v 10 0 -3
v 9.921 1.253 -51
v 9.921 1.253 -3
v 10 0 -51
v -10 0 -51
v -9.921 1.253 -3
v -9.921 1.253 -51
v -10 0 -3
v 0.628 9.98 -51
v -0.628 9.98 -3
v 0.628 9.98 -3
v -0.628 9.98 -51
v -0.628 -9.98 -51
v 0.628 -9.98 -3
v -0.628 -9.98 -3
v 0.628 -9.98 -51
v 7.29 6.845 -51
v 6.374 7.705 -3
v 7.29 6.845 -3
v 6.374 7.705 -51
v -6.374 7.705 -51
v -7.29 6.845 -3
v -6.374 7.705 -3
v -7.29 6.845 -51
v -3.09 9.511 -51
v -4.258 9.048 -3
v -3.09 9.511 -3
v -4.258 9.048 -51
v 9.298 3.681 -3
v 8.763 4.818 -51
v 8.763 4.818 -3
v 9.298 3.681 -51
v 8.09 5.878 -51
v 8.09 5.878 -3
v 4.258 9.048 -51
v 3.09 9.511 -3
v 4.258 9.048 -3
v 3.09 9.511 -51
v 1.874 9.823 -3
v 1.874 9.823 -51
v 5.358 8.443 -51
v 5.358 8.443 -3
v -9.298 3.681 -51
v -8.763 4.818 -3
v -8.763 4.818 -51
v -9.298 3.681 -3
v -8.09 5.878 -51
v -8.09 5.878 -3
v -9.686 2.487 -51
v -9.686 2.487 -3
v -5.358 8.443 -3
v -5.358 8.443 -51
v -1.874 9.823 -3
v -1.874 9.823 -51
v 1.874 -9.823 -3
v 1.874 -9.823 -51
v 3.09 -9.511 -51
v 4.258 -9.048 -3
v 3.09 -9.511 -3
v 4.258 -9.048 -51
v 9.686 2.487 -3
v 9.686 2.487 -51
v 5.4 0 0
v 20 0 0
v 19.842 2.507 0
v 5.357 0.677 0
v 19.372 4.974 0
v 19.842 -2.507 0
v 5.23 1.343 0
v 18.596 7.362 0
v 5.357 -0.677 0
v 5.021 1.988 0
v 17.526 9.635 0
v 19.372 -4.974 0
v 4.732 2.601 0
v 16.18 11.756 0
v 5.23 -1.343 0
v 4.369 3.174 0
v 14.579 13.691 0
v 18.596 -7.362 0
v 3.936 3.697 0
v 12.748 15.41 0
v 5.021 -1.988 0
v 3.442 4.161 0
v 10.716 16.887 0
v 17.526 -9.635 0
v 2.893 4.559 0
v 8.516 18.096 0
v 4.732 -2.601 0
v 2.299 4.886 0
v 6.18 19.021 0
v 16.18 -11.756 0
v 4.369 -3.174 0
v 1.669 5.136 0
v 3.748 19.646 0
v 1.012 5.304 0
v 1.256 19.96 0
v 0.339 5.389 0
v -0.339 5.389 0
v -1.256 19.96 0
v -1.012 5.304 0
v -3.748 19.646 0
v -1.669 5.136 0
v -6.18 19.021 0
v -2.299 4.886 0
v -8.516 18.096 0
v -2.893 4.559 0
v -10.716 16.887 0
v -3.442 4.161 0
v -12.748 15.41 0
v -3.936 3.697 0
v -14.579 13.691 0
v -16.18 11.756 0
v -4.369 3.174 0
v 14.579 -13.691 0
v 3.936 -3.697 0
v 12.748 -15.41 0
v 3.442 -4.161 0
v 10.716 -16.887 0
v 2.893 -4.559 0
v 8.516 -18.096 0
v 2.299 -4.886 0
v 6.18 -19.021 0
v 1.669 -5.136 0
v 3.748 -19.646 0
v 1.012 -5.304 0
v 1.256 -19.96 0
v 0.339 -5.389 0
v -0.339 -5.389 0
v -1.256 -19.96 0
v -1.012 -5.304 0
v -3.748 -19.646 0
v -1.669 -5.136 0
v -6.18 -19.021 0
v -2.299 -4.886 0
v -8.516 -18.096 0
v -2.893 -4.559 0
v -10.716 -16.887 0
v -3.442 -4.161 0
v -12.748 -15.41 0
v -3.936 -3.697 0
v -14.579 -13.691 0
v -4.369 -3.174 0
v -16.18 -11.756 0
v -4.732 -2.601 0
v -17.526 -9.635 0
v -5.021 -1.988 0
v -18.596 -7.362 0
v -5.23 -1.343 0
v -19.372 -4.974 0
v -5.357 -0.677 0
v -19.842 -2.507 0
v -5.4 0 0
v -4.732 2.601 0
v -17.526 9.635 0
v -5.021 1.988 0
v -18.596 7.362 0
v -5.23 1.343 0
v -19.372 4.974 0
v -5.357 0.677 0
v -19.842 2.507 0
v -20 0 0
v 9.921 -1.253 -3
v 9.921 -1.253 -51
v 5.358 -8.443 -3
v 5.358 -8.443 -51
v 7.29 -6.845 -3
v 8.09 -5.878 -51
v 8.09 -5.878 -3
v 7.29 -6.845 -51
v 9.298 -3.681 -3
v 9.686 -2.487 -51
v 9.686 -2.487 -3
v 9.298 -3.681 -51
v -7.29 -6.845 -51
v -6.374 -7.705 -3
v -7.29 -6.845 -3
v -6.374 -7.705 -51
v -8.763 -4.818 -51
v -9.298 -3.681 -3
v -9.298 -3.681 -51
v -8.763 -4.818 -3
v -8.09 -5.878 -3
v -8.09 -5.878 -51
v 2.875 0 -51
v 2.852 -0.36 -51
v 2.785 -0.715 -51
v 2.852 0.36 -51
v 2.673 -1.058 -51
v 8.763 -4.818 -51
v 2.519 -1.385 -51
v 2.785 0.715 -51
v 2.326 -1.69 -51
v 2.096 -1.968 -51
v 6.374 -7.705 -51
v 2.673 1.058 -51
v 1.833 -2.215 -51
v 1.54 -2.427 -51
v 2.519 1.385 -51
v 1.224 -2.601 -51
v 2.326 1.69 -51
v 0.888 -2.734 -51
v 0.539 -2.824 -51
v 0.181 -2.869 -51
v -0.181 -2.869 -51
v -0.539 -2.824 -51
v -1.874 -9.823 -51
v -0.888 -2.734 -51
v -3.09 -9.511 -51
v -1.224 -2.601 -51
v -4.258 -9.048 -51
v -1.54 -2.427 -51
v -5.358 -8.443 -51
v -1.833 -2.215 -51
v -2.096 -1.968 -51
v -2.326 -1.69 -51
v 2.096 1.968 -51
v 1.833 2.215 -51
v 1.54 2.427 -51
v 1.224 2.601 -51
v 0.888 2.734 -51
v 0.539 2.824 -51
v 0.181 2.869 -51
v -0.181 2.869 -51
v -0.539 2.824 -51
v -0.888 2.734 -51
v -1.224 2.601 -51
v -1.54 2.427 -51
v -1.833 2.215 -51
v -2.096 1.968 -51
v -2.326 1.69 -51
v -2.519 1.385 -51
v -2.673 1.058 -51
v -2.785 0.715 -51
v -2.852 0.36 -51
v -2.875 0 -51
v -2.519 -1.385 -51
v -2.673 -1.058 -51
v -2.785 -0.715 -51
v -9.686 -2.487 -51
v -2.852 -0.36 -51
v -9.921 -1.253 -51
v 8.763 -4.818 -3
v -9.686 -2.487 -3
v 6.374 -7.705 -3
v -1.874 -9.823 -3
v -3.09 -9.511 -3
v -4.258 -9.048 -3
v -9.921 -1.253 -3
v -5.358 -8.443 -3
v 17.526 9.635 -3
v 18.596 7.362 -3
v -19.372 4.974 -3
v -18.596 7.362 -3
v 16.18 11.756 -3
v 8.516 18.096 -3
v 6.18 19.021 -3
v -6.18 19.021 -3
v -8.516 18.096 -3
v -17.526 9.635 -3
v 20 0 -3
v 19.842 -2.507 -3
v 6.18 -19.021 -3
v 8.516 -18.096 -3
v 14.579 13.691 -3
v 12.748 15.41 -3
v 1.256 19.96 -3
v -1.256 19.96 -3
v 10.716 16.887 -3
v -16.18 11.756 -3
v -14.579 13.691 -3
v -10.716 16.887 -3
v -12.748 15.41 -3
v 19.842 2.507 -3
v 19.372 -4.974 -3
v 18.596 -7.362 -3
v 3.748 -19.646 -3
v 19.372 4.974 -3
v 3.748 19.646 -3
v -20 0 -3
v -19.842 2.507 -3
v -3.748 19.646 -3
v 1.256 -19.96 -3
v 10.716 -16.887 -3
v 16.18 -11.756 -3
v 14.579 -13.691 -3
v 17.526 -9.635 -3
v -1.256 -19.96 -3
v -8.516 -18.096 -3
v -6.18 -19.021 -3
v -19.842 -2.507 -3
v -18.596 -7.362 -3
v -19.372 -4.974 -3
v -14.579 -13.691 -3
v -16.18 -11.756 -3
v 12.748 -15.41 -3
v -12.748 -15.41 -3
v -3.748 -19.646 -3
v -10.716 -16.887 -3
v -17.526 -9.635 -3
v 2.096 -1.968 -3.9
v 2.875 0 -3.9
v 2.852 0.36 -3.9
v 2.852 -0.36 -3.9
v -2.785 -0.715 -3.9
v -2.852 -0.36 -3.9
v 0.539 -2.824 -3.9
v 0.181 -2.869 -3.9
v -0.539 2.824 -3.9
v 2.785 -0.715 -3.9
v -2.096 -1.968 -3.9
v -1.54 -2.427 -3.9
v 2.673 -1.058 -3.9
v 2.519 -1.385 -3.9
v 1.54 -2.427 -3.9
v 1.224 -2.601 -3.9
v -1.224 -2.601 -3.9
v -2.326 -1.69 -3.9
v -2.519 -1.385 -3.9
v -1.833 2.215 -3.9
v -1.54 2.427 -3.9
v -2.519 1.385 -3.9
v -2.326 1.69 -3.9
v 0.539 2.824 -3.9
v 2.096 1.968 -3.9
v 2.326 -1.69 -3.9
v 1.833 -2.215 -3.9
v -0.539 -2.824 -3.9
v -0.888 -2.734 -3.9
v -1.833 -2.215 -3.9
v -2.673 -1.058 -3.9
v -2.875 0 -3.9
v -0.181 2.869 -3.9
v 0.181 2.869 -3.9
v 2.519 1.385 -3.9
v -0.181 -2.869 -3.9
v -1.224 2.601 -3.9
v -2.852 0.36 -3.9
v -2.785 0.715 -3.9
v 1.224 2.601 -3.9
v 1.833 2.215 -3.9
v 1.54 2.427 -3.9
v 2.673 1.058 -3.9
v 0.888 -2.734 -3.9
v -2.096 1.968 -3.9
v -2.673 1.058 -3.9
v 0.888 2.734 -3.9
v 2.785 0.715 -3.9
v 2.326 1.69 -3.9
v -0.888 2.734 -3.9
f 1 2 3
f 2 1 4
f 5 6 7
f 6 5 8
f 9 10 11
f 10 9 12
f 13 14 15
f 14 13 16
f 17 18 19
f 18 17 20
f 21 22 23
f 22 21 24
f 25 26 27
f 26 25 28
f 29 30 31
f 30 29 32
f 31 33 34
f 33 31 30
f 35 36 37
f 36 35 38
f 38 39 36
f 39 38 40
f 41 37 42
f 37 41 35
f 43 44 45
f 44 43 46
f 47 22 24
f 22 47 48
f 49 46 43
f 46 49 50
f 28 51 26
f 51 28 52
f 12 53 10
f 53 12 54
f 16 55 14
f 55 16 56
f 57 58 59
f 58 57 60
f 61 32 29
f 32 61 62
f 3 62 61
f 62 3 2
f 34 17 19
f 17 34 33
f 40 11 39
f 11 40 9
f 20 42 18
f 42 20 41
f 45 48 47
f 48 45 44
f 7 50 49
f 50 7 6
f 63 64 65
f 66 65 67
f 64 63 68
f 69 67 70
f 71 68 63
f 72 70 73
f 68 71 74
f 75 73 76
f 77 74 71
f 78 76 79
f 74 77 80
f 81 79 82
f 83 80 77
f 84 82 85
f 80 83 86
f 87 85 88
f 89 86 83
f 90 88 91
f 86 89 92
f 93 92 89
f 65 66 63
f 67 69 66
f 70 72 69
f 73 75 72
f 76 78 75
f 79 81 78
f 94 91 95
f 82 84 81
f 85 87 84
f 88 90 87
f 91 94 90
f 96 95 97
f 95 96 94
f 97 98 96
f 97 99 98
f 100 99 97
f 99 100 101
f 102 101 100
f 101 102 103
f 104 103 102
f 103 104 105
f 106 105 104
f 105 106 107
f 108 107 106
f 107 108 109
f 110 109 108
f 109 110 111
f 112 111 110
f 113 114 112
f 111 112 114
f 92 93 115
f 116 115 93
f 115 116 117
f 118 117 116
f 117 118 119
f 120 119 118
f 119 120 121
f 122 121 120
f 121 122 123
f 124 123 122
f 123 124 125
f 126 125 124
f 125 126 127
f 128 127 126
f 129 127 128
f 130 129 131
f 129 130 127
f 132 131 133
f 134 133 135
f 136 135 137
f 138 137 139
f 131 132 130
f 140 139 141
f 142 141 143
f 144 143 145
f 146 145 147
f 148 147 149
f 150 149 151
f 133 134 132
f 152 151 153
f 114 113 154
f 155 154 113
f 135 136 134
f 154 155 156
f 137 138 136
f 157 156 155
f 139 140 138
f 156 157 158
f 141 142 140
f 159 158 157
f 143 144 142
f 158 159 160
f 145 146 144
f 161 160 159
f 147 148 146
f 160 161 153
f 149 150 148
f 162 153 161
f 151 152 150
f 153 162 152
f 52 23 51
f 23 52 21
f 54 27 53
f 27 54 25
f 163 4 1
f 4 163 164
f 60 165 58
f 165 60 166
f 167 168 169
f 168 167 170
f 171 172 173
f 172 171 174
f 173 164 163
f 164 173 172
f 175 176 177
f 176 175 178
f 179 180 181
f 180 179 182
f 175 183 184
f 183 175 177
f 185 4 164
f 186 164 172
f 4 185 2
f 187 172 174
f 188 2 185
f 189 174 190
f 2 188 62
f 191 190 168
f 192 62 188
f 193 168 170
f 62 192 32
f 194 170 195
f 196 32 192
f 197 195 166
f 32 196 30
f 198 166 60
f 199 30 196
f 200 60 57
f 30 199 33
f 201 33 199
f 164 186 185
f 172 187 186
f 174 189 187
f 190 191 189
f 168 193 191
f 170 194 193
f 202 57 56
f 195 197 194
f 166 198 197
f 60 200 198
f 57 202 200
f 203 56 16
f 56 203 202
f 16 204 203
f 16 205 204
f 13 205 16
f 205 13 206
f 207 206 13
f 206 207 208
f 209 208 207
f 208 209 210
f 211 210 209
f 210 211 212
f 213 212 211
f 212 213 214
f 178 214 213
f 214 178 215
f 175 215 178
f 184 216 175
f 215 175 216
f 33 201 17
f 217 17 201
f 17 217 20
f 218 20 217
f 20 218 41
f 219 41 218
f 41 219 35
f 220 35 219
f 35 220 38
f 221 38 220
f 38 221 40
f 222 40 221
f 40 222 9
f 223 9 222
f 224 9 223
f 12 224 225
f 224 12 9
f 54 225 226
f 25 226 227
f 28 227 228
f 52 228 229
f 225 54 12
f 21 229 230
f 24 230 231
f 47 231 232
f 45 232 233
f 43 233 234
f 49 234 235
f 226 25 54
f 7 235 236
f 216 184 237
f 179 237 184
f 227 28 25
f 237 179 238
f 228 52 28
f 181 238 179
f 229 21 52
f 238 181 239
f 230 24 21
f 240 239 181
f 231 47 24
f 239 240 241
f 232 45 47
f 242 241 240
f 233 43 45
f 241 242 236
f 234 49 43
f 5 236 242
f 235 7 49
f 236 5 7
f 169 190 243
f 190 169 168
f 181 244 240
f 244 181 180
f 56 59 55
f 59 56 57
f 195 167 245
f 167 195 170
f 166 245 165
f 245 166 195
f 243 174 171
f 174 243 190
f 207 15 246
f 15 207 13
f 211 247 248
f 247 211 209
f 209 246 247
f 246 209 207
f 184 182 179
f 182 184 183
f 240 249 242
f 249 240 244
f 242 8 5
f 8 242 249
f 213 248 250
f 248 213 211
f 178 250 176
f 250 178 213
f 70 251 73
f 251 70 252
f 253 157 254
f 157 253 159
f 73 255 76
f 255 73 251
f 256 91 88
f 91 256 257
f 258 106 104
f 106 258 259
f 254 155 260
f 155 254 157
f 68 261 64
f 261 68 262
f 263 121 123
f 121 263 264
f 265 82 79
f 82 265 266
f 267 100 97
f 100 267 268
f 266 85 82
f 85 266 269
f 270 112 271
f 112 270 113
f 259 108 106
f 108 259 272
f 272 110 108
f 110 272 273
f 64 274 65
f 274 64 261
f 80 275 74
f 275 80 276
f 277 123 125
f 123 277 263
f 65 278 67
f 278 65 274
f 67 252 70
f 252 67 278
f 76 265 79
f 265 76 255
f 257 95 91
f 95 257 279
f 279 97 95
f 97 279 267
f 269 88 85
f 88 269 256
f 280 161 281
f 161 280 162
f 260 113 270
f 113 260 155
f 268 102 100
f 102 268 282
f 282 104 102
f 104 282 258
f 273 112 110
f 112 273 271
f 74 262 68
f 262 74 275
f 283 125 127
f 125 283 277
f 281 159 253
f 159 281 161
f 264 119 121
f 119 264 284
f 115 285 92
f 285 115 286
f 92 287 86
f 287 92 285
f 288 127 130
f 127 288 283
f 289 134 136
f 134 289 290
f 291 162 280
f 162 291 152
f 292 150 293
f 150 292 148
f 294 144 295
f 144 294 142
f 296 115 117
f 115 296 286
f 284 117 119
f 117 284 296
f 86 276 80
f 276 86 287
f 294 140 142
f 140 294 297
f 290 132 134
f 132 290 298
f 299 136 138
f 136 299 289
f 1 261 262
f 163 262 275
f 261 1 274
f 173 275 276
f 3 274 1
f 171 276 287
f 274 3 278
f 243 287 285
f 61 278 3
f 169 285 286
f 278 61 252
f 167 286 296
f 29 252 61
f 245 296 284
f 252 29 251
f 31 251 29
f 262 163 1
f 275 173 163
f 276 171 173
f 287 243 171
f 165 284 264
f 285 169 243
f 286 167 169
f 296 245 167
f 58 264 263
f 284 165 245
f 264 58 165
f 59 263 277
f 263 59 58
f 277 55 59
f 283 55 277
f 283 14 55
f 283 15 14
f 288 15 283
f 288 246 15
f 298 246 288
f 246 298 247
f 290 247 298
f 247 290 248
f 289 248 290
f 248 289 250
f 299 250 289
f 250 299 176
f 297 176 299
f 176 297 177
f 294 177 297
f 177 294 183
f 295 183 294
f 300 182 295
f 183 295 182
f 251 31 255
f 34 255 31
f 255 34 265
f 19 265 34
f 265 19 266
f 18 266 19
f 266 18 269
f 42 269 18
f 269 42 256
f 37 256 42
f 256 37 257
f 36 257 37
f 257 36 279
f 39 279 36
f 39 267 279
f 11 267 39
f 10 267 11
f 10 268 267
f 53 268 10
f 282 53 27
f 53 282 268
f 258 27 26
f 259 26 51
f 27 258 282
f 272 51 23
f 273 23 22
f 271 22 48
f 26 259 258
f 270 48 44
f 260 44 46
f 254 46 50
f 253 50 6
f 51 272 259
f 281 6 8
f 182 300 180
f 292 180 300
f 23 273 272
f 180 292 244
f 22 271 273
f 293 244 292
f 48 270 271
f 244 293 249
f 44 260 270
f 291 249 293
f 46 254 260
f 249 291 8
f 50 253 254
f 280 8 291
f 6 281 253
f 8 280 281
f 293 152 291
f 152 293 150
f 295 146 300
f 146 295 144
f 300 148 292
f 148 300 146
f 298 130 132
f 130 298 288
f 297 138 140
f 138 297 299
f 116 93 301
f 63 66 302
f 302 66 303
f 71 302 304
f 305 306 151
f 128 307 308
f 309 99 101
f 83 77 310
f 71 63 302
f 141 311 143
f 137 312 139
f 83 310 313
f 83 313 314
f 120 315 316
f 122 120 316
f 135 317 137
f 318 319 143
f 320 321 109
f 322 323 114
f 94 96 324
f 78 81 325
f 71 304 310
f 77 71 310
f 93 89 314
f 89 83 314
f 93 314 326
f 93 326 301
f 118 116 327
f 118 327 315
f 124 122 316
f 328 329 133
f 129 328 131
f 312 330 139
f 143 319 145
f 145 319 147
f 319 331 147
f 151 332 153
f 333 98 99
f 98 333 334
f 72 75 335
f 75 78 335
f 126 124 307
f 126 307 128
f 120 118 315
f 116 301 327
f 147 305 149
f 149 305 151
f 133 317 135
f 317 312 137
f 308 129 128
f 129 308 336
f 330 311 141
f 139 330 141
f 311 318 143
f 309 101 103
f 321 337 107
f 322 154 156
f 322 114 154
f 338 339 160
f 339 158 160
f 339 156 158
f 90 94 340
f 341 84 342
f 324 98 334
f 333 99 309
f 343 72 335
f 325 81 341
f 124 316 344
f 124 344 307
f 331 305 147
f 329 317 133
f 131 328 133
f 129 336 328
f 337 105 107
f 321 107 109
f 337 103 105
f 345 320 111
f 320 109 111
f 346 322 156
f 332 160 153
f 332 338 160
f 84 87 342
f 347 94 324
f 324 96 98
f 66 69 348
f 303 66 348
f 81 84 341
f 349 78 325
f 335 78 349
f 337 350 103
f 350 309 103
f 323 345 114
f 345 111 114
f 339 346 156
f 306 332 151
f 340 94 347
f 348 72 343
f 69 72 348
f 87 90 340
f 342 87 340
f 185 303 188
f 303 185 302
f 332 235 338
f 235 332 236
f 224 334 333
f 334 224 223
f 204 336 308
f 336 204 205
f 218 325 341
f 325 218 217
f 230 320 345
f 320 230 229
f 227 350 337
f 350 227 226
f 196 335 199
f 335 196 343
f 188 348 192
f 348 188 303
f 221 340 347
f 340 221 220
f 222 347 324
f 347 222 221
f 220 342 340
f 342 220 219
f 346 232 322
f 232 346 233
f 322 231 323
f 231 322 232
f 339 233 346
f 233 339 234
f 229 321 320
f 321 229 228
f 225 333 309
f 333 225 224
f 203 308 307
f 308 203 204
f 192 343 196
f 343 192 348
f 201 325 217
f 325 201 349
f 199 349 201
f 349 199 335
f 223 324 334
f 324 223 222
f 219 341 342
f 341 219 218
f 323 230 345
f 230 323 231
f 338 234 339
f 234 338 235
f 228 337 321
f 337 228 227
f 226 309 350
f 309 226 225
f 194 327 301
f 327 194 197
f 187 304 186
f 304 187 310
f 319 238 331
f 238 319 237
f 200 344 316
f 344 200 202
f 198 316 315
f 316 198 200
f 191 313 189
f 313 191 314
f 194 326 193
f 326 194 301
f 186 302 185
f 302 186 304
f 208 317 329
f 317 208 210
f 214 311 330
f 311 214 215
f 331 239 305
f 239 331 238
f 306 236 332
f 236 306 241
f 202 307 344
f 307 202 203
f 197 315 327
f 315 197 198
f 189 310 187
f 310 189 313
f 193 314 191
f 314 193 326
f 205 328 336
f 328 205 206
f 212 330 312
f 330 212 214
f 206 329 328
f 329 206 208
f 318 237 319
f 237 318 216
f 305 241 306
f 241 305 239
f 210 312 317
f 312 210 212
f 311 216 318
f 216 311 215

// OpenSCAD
$fn = 50;


difference() {
	union() {
		translate(v = [0, 0, -51.0000000000]) {
			cylinder(h = 51, r = 10.0000000000);
		}
		translate(v = [0, 0, -3.0000000000]) {
			cylinder(h = 3, r = 20.0000000000);
		}
	}
	union() {
		translate(v = [0, 0, 0]) {
			rotate(a = [0, 0, 0]) {
				difference() {
					union() {
						#translate(v = [0, 0, -51.0000000000]) {
							cylinder(h = 51, r = 2.6000000000);
						}
						#translate(v = [0, 0, -3.9000000000]) {
							cylinder(h = 3.9000000000, r = 10.0000000000, r1 = 2.8750000000, r2 = 5.4000000000);
						}
						#translate(v = [0, 0, -51.0000000000]) {
							cylinder(h = 51, r = 2.8750000000);
						}
						#translate(v = [0, 0, -51.0000000000]) {
							cylinder(h = 51, r = 2.6000000000);
						}
					}
					union();
				}
			}
		}
	}
}
